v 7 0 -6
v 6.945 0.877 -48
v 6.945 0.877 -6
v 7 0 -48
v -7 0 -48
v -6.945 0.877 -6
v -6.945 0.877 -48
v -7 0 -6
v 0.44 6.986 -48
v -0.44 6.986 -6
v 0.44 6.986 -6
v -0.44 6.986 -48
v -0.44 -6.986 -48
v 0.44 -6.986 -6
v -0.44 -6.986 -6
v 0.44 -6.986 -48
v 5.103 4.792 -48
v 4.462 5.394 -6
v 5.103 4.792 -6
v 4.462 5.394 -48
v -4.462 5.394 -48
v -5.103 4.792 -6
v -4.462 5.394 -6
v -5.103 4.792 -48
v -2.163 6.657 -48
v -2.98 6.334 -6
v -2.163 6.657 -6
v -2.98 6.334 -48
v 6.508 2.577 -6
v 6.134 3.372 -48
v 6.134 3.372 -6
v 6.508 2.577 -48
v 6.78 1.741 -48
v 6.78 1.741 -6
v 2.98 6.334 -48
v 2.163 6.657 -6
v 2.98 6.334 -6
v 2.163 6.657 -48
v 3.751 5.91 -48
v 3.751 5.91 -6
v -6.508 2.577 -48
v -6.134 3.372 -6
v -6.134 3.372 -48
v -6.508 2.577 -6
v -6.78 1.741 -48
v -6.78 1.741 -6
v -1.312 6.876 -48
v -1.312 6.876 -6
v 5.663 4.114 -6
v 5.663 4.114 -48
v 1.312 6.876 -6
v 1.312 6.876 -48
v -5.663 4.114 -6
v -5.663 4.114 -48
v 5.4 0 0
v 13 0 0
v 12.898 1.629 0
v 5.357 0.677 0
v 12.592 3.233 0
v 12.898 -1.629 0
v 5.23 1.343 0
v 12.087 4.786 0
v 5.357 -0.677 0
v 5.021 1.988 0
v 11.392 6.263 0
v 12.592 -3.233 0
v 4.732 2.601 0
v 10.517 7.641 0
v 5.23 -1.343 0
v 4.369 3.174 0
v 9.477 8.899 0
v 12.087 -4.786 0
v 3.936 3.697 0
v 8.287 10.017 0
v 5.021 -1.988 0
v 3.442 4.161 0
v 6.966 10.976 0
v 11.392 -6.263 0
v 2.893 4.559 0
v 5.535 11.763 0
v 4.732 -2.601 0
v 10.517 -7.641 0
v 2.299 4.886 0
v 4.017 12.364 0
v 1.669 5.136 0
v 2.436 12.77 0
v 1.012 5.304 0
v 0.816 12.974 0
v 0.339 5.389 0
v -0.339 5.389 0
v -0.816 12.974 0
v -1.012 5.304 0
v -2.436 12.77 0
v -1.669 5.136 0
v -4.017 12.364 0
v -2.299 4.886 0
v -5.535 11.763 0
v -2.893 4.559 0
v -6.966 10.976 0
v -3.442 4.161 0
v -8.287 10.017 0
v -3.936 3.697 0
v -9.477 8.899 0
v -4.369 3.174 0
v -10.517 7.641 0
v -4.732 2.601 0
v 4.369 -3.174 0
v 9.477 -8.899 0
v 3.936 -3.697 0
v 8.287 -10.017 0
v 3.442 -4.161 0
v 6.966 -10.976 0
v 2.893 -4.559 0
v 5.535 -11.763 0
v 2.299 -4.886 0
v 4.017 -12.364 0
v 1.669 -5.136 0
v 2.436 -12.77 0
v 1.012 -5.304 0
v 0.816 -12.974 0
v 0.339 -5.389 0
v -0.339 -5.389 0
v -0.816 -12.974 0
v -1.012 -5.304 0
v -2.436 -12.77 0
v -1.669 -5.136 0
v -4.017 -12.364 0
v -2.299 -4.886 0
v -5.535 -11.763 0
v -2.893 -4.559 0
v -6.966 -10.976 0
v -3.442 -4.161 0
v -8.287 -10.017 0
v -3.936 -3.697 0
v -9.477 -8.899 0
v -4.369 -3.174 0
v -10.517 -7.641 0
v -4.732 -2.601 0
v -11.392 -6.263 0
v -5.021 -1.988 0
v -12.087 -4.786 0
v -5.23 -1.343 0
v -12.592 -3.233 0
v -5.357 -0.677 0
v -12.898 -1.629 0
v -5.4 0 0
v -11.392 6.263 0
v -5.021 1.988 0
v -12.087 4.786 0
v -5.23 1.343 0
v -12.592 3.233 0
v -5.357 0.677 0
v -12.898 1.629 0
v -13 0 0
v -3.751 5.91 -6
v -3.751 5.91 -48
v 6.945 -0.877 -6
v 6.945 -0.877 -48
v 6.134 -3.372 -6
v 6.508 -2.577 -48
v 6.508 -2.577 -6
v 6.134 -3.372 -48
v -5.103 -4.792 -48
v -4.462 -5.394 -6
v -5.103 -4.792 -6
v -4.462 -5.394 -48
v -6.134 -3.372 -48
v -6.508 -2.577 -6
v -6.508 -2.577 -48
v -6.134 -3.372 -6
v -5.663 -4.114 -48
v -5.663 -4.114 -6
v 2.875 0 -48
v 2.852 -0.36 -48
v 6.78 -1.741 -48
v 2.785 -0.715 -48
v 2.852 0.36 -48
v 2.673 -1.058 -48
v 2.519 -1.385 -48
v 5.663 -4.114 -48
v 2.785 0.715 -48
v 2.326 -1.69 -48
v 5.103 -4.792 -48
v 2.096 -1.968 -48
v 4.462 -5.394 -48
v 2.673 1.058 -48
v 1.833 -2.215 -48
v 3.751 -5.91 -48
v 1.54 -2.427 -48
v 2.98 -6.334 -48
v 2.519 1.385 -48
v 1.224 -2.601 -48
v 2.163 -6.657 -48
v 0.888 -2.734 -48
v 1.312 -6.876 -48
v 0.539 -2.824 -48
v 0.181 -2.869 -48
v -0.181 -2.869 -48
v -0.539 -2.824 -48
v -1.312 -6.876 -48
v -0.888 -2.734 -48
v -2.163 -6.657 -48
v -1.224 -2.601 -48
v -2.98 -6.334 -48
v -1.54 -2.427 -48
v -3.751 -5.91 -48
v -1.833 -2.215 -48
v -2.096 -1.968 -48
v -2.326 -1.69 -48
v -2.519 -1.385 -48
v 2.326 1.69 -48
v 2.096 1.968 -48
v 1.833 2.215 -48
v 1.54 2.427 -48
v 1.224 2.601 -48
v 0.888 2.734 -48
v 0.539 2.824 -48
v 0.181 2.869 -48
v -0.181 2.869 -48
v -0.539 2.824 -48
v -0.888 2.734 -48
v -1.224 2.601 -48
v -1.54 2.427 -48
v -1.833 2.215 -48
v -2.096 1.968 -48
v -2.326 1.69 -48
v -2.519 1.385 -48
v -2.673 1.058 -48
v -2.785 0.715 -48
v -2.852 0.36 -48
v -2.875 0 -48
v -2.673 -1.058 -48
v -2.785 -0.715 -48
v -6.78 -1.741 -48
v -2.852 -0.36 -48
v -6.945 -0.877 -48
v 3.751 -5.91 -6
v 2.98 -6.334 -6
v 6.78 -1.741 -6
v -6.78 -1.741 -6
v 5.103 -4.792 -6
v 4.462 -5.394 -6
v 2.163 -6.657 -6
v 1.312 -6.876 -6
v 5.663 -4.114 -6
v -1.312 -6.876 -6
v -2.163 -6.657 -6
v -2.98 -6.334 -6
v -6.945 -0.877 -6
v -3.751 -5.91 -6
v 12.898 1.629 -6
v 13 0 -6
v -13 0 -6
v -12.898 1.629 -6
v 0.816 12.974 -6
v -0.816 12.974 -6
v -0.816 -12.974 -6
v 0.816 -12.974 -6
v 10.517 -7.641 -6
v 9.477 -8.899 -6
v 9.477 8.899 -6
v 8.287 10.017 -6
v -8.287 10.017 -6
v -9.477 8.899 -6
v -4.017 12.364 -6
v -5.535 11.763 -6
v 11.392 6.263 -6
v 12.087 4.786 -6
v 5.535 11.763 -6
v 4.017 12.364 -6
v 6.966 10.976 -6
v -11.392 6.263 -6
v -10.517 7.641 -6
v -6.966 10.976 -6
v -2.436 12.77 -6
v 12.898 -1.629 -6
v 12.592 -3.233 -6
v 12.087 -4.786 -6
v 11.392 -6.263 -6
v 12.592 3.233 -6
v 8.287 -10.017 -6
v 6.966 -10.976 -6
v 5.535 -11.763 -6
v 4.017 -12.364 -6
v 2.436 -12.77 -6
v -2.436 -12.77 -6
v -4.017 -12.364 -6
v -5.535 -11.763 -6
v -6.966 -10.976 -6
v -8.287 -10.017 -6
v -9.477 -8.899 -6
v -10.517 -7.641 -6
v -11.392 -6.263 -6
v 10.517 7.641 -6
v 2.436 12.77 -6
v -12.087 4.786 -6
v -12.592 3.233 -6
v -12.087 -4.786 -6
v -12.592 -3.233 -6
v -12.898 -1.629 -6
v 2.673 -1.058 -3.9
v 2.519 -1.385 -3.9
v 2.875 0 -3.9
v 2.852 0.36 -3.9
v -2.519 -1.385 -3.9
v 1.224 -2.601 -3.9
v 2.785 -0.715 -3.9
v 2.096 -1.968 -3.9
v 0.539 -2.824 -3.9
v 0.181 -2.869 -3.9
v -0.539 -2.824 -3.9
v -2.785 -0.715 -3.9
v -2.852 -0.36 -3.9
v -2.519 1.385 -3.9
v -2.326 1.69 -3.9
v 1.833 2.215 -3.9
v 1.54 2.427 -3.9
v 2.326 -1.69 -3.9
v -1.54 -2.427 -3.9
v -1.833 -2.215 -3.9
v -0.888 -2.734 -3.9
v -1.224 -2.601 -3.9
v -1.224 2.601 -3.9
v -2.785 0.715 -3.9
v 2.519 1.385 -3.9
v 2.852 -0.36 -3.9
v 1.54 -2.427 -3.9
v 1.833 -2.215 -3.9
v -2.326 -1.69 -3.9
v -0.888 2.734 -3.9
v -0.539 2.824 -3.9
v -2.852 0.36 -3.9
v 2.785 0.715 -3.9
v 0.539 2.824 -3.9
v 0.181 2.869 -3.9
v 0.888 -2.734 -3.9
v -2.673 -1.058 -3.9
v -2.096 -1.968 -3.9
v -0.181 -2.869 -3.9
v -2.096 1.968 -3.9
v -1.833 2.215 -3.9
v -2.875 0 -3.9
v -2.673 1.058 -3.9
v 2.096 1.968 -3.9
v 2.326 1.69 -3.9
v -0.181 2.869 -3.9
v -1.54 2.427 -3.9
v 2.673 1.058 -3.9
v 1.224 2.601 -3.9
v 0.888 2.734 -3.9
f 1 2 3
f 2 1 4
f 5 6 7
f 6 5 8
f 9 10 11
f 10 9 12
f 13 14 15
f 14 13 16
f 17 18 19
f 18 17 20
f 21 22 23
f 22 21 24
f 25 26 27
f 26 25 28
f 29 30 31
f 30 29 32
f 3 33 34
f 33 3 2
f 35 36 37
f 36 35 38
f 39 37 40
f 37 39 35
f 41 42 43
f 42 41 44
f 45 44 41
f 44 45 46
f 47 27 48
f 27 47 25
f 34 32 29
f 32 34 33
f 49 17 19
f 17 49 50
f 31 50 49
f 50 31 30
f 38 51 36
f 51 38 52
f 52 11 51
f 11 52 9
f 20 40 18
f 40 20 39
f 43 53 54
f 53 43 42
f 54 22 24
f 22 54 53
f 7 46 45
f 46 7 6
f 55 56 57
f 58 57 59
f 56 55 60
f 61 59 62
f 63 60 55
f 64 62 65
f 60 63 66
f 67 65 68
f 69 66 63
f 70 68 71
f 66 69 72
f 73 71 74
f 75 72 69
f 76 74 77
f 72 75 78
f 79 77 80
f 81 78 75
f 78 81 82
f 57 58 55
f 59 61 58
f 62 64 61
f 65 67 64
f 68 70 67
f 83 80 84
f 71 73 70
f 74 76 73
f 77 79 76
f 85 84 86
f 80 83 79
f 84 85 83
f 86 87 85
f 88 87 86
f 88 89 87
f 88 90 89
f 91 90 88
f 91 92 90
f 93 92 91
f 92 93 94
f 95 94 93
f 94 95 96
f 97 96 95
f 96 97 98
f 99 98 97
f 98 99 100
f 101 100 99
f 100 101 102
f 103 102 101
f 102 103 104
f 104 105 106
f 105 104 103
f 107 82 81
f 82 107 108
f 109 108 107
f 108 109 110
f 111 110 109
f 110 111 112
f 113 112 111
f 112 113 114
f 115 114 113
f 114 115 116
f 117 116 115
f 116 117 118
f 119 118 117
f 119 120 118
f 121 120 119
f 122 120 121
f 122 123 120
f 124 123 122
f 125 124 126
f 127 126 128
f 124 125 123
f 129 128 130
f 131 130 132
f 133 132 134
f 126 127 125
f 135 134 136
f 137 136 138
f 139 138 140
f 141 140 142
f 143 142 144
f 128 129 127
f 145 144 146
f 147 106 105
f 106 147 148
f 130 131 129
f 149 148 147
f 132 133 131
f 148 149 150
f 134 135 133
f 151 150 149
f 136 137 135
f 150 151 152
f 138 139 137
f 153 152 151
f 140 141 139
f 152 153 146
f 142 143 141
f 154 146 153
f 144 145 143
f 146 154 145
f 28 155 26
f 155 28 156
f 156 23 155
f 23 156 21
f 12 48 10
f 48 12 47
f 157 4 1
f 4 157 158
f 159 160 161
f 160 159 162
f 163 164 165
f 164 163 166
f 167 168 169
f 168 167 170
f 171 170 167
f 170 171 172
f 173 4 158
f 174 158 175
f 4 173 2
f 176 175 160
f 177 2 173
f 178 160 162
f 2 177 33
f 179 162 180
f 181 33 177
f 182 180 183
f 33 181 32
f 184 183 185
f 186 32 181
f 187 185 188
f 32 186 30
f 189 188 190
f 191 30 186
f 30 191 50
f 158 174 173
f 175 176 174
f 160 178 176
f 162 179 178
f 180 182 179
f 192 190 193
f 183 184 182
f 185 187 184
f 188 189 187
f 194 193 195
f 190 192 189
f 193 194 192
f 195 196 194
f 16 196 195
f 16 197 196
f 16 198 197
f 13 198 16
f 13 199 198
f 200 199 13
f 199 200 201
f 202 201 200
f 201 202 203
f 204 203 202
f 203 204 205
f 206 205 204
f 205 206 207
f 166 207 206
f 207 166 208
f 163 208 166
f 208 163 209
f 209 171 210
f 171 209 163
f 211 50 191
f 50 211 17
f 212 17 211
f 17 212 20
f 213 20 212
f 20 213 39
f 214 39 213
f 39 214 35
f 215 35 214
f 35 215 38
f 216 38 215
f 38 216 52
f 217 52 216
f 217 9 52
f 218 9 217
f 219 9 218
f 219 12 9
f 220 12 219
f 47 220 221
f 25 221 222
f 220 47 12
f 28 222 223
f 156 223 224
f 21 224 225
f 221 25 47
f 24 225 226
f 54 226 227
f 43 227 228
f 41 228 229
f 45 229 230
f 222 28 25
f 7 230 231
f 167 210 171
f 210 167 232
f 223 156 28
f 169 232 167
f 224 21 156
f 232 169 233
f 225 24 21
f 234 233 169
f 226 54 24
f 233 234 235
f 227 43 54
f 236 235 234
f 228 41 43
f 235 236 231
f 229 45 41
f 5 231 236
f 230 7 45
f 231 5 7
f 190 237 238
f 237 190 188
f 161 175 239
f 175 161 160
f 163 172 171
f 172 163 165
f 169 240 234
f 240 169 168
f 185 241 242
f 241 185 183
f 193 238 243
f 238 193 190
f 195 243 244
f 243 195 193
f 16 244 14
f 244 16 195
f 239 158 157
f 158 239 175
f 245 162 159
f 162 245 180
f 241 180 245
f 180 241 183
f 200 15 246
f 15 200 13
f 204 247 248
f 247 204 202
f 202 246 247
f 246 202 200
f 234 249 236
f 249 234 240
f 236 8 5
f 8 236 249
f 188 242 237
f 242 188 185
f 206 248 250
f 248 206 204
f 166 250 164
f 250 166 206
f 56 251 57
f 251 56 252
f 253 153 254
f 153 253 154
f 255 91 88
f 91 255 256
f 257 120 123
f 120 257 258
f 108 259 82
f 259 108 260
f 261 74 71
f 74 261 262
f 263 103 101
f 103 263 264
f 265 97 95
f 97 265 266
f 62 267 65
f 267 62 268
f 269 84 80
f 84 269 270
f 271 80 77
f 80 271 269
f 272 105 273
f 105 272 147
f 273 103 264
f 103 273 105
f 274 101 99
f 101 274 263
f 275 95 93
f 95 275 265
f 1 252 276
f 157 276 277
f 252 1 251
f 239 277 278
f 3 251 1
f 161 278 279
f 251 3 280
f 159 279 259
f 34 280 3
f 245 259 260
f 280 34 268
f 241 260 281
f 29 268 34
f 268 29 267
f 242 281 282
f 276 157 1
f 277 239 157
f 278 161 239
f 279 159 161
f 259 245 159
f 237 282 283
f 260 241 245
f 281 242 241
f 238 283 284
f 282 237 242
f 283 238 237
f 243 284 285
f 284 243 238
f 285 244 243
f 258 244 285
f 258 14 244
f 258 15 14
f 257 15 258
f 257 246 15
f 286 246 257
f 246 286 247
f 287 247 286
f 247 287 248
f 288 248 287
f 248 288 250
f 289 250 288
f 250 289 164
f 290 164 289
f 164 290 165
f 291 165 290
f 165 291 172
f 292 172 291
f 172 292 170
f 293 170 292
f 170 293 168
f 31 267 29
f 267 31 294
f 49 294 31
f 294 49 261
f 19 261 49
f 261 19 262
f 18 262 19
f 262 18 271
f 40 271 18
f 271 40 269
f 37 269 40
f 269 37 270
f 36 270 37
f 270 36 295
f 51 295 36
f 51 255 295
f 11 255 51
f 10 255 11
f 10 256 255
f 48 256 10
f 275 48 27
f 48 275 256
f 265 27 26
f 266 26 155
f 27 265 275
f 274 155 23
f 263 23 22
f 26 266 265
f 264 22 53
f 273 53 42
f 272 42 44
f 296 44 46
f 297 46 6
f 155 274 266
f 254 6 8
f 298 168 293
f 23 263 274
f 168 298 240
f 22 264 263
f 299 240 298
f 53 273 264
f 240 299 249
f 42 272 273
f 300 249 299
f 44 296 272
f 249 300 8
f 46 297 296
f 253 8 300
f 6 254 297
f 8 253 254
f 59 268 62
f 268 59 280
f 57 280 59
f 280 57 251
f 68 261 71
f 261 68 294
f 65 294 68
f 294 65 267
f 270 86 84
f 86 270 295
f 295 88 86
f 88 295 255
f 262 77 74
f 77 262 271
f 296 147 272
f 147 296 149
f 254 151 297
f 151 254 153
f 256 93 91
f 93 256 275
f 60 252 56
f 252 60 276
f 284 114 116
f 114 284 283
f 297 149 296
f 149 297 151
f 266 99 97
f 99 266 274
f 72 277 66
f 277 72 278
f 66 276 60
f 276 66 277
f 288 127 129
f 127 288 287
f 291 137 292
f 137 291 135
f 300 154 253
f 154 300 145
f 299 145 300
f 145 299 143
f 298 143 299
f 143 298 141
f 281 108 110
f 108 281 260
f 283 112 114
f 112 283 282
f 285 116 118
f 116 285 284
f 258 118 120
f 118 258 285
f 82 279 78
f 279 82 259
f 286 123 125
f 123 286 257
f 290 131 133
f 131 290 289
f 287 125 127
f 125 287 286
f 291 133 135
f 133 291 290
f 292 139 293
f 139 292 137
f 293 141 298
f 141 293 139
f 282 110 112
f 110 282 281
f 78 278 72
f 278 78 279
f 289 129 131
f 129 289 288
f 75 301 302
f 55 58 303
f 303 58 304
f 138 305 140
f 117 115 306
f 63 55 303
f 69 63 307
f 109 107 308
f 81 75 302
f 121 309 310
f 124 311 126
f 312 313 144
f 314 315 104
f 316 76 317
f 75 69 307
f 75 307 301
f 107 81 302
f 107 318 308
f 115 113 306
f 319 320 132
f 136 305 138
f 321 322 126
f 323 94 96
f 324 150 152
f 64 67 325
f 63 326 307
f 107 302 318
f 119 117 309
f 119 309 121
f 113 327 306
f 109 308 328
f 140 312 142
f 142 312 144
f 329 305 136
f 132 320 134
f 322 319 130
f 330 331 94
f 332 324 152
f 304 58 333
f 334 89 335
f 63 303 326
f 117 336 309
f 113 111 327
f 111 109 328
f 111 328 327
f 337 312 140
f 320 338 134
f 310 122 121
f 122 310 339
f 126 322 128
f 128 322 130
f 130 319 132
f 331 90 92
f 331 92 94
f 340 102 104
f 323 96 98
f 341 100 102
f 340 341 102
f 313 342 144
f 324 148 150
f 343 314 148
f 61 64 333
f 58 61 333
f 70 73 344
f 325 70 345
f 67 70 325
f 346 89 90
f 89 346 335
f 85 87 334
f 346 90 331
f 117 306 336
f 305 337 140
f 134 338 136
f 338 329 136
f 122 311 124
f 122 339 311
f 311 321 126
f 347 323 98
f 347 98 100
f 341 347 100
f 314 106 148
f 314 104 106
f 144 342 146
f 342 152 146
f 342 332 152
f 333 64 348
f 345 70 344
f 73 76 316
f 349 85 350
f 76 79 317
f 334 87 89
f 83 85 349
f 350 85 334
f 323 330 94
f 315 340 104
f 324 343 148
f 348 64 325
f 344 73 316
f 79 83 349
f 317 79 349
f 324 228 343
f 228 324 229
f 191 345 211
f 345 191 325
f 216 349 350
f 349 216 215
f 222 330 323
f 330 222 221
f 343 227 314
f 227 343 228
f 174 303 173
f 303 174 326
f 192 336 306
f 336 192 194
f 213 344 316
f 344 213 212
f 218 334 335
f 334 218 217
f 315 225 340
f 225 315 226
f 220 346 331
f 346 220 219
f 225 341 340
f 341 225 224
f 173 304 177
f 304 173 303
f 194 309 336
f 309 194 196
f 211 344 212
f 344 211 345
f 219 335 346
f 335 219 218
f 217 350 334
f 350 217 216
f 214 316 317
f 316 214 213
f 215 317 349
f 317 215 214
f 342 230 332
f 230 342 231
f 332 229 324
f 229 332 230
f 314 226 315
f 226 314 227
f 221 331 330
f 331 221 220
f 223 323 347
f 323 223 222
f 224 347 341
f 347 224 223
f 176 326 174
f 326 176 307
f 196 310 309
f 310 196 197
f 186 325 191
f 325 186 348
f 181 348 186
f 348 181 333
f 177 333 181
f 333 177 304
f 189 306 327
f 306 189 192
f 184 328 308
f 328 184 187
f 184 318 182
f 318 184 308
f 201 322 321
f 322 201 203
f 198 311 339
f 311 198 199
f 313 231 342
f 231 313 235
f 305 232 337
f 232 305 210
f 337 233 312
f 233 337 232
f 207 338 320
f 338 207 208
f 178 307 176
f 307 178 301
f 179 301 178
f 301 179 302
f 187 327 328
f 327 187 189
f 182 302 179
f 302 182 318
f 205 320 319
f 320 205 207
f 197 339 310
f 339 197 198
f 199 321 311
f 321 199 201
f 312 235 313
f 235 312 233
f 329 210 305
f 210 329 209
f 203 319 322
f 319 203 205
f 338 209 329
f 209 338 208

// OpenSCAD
$fn = 50;


difference() {
	union() {
		translate(v = [0, 0, -48.0000000000]) {
			cylinder(h = 48, r = 7.0000000000);
		}
		translate(v = [0, 0, -6.0000000000]) {
			cylinder(h = 6, r = 13.0000000000);
		}
	}
	union() {
		translate(v = [0, 0, 0]) {
			rotate(a = [0, 0, 0]) {
				difference() {
					union() {
						#translate(v = [0, 0, -48.0000000000]) {
							cylinder(h = 48, r = 2.6000000000);
						}
						#translate(v = [0, 0, -3.9000000000]) {
							cylinder(h = 3.9000000000, r1 = 2.8750000000, r2 = 5.4000000000);
						}
						#translate(v = [0, 0, -48.0000000000]) {
							cylinder(h = 48, r = 2.8750000000);
						}
						#translate(v = [0, 0, -48.0000000000]) {
							cylinder(h = 48, r = 2.6000000000);
						}
					}
					union();
				}
			}
		}
	}
}
